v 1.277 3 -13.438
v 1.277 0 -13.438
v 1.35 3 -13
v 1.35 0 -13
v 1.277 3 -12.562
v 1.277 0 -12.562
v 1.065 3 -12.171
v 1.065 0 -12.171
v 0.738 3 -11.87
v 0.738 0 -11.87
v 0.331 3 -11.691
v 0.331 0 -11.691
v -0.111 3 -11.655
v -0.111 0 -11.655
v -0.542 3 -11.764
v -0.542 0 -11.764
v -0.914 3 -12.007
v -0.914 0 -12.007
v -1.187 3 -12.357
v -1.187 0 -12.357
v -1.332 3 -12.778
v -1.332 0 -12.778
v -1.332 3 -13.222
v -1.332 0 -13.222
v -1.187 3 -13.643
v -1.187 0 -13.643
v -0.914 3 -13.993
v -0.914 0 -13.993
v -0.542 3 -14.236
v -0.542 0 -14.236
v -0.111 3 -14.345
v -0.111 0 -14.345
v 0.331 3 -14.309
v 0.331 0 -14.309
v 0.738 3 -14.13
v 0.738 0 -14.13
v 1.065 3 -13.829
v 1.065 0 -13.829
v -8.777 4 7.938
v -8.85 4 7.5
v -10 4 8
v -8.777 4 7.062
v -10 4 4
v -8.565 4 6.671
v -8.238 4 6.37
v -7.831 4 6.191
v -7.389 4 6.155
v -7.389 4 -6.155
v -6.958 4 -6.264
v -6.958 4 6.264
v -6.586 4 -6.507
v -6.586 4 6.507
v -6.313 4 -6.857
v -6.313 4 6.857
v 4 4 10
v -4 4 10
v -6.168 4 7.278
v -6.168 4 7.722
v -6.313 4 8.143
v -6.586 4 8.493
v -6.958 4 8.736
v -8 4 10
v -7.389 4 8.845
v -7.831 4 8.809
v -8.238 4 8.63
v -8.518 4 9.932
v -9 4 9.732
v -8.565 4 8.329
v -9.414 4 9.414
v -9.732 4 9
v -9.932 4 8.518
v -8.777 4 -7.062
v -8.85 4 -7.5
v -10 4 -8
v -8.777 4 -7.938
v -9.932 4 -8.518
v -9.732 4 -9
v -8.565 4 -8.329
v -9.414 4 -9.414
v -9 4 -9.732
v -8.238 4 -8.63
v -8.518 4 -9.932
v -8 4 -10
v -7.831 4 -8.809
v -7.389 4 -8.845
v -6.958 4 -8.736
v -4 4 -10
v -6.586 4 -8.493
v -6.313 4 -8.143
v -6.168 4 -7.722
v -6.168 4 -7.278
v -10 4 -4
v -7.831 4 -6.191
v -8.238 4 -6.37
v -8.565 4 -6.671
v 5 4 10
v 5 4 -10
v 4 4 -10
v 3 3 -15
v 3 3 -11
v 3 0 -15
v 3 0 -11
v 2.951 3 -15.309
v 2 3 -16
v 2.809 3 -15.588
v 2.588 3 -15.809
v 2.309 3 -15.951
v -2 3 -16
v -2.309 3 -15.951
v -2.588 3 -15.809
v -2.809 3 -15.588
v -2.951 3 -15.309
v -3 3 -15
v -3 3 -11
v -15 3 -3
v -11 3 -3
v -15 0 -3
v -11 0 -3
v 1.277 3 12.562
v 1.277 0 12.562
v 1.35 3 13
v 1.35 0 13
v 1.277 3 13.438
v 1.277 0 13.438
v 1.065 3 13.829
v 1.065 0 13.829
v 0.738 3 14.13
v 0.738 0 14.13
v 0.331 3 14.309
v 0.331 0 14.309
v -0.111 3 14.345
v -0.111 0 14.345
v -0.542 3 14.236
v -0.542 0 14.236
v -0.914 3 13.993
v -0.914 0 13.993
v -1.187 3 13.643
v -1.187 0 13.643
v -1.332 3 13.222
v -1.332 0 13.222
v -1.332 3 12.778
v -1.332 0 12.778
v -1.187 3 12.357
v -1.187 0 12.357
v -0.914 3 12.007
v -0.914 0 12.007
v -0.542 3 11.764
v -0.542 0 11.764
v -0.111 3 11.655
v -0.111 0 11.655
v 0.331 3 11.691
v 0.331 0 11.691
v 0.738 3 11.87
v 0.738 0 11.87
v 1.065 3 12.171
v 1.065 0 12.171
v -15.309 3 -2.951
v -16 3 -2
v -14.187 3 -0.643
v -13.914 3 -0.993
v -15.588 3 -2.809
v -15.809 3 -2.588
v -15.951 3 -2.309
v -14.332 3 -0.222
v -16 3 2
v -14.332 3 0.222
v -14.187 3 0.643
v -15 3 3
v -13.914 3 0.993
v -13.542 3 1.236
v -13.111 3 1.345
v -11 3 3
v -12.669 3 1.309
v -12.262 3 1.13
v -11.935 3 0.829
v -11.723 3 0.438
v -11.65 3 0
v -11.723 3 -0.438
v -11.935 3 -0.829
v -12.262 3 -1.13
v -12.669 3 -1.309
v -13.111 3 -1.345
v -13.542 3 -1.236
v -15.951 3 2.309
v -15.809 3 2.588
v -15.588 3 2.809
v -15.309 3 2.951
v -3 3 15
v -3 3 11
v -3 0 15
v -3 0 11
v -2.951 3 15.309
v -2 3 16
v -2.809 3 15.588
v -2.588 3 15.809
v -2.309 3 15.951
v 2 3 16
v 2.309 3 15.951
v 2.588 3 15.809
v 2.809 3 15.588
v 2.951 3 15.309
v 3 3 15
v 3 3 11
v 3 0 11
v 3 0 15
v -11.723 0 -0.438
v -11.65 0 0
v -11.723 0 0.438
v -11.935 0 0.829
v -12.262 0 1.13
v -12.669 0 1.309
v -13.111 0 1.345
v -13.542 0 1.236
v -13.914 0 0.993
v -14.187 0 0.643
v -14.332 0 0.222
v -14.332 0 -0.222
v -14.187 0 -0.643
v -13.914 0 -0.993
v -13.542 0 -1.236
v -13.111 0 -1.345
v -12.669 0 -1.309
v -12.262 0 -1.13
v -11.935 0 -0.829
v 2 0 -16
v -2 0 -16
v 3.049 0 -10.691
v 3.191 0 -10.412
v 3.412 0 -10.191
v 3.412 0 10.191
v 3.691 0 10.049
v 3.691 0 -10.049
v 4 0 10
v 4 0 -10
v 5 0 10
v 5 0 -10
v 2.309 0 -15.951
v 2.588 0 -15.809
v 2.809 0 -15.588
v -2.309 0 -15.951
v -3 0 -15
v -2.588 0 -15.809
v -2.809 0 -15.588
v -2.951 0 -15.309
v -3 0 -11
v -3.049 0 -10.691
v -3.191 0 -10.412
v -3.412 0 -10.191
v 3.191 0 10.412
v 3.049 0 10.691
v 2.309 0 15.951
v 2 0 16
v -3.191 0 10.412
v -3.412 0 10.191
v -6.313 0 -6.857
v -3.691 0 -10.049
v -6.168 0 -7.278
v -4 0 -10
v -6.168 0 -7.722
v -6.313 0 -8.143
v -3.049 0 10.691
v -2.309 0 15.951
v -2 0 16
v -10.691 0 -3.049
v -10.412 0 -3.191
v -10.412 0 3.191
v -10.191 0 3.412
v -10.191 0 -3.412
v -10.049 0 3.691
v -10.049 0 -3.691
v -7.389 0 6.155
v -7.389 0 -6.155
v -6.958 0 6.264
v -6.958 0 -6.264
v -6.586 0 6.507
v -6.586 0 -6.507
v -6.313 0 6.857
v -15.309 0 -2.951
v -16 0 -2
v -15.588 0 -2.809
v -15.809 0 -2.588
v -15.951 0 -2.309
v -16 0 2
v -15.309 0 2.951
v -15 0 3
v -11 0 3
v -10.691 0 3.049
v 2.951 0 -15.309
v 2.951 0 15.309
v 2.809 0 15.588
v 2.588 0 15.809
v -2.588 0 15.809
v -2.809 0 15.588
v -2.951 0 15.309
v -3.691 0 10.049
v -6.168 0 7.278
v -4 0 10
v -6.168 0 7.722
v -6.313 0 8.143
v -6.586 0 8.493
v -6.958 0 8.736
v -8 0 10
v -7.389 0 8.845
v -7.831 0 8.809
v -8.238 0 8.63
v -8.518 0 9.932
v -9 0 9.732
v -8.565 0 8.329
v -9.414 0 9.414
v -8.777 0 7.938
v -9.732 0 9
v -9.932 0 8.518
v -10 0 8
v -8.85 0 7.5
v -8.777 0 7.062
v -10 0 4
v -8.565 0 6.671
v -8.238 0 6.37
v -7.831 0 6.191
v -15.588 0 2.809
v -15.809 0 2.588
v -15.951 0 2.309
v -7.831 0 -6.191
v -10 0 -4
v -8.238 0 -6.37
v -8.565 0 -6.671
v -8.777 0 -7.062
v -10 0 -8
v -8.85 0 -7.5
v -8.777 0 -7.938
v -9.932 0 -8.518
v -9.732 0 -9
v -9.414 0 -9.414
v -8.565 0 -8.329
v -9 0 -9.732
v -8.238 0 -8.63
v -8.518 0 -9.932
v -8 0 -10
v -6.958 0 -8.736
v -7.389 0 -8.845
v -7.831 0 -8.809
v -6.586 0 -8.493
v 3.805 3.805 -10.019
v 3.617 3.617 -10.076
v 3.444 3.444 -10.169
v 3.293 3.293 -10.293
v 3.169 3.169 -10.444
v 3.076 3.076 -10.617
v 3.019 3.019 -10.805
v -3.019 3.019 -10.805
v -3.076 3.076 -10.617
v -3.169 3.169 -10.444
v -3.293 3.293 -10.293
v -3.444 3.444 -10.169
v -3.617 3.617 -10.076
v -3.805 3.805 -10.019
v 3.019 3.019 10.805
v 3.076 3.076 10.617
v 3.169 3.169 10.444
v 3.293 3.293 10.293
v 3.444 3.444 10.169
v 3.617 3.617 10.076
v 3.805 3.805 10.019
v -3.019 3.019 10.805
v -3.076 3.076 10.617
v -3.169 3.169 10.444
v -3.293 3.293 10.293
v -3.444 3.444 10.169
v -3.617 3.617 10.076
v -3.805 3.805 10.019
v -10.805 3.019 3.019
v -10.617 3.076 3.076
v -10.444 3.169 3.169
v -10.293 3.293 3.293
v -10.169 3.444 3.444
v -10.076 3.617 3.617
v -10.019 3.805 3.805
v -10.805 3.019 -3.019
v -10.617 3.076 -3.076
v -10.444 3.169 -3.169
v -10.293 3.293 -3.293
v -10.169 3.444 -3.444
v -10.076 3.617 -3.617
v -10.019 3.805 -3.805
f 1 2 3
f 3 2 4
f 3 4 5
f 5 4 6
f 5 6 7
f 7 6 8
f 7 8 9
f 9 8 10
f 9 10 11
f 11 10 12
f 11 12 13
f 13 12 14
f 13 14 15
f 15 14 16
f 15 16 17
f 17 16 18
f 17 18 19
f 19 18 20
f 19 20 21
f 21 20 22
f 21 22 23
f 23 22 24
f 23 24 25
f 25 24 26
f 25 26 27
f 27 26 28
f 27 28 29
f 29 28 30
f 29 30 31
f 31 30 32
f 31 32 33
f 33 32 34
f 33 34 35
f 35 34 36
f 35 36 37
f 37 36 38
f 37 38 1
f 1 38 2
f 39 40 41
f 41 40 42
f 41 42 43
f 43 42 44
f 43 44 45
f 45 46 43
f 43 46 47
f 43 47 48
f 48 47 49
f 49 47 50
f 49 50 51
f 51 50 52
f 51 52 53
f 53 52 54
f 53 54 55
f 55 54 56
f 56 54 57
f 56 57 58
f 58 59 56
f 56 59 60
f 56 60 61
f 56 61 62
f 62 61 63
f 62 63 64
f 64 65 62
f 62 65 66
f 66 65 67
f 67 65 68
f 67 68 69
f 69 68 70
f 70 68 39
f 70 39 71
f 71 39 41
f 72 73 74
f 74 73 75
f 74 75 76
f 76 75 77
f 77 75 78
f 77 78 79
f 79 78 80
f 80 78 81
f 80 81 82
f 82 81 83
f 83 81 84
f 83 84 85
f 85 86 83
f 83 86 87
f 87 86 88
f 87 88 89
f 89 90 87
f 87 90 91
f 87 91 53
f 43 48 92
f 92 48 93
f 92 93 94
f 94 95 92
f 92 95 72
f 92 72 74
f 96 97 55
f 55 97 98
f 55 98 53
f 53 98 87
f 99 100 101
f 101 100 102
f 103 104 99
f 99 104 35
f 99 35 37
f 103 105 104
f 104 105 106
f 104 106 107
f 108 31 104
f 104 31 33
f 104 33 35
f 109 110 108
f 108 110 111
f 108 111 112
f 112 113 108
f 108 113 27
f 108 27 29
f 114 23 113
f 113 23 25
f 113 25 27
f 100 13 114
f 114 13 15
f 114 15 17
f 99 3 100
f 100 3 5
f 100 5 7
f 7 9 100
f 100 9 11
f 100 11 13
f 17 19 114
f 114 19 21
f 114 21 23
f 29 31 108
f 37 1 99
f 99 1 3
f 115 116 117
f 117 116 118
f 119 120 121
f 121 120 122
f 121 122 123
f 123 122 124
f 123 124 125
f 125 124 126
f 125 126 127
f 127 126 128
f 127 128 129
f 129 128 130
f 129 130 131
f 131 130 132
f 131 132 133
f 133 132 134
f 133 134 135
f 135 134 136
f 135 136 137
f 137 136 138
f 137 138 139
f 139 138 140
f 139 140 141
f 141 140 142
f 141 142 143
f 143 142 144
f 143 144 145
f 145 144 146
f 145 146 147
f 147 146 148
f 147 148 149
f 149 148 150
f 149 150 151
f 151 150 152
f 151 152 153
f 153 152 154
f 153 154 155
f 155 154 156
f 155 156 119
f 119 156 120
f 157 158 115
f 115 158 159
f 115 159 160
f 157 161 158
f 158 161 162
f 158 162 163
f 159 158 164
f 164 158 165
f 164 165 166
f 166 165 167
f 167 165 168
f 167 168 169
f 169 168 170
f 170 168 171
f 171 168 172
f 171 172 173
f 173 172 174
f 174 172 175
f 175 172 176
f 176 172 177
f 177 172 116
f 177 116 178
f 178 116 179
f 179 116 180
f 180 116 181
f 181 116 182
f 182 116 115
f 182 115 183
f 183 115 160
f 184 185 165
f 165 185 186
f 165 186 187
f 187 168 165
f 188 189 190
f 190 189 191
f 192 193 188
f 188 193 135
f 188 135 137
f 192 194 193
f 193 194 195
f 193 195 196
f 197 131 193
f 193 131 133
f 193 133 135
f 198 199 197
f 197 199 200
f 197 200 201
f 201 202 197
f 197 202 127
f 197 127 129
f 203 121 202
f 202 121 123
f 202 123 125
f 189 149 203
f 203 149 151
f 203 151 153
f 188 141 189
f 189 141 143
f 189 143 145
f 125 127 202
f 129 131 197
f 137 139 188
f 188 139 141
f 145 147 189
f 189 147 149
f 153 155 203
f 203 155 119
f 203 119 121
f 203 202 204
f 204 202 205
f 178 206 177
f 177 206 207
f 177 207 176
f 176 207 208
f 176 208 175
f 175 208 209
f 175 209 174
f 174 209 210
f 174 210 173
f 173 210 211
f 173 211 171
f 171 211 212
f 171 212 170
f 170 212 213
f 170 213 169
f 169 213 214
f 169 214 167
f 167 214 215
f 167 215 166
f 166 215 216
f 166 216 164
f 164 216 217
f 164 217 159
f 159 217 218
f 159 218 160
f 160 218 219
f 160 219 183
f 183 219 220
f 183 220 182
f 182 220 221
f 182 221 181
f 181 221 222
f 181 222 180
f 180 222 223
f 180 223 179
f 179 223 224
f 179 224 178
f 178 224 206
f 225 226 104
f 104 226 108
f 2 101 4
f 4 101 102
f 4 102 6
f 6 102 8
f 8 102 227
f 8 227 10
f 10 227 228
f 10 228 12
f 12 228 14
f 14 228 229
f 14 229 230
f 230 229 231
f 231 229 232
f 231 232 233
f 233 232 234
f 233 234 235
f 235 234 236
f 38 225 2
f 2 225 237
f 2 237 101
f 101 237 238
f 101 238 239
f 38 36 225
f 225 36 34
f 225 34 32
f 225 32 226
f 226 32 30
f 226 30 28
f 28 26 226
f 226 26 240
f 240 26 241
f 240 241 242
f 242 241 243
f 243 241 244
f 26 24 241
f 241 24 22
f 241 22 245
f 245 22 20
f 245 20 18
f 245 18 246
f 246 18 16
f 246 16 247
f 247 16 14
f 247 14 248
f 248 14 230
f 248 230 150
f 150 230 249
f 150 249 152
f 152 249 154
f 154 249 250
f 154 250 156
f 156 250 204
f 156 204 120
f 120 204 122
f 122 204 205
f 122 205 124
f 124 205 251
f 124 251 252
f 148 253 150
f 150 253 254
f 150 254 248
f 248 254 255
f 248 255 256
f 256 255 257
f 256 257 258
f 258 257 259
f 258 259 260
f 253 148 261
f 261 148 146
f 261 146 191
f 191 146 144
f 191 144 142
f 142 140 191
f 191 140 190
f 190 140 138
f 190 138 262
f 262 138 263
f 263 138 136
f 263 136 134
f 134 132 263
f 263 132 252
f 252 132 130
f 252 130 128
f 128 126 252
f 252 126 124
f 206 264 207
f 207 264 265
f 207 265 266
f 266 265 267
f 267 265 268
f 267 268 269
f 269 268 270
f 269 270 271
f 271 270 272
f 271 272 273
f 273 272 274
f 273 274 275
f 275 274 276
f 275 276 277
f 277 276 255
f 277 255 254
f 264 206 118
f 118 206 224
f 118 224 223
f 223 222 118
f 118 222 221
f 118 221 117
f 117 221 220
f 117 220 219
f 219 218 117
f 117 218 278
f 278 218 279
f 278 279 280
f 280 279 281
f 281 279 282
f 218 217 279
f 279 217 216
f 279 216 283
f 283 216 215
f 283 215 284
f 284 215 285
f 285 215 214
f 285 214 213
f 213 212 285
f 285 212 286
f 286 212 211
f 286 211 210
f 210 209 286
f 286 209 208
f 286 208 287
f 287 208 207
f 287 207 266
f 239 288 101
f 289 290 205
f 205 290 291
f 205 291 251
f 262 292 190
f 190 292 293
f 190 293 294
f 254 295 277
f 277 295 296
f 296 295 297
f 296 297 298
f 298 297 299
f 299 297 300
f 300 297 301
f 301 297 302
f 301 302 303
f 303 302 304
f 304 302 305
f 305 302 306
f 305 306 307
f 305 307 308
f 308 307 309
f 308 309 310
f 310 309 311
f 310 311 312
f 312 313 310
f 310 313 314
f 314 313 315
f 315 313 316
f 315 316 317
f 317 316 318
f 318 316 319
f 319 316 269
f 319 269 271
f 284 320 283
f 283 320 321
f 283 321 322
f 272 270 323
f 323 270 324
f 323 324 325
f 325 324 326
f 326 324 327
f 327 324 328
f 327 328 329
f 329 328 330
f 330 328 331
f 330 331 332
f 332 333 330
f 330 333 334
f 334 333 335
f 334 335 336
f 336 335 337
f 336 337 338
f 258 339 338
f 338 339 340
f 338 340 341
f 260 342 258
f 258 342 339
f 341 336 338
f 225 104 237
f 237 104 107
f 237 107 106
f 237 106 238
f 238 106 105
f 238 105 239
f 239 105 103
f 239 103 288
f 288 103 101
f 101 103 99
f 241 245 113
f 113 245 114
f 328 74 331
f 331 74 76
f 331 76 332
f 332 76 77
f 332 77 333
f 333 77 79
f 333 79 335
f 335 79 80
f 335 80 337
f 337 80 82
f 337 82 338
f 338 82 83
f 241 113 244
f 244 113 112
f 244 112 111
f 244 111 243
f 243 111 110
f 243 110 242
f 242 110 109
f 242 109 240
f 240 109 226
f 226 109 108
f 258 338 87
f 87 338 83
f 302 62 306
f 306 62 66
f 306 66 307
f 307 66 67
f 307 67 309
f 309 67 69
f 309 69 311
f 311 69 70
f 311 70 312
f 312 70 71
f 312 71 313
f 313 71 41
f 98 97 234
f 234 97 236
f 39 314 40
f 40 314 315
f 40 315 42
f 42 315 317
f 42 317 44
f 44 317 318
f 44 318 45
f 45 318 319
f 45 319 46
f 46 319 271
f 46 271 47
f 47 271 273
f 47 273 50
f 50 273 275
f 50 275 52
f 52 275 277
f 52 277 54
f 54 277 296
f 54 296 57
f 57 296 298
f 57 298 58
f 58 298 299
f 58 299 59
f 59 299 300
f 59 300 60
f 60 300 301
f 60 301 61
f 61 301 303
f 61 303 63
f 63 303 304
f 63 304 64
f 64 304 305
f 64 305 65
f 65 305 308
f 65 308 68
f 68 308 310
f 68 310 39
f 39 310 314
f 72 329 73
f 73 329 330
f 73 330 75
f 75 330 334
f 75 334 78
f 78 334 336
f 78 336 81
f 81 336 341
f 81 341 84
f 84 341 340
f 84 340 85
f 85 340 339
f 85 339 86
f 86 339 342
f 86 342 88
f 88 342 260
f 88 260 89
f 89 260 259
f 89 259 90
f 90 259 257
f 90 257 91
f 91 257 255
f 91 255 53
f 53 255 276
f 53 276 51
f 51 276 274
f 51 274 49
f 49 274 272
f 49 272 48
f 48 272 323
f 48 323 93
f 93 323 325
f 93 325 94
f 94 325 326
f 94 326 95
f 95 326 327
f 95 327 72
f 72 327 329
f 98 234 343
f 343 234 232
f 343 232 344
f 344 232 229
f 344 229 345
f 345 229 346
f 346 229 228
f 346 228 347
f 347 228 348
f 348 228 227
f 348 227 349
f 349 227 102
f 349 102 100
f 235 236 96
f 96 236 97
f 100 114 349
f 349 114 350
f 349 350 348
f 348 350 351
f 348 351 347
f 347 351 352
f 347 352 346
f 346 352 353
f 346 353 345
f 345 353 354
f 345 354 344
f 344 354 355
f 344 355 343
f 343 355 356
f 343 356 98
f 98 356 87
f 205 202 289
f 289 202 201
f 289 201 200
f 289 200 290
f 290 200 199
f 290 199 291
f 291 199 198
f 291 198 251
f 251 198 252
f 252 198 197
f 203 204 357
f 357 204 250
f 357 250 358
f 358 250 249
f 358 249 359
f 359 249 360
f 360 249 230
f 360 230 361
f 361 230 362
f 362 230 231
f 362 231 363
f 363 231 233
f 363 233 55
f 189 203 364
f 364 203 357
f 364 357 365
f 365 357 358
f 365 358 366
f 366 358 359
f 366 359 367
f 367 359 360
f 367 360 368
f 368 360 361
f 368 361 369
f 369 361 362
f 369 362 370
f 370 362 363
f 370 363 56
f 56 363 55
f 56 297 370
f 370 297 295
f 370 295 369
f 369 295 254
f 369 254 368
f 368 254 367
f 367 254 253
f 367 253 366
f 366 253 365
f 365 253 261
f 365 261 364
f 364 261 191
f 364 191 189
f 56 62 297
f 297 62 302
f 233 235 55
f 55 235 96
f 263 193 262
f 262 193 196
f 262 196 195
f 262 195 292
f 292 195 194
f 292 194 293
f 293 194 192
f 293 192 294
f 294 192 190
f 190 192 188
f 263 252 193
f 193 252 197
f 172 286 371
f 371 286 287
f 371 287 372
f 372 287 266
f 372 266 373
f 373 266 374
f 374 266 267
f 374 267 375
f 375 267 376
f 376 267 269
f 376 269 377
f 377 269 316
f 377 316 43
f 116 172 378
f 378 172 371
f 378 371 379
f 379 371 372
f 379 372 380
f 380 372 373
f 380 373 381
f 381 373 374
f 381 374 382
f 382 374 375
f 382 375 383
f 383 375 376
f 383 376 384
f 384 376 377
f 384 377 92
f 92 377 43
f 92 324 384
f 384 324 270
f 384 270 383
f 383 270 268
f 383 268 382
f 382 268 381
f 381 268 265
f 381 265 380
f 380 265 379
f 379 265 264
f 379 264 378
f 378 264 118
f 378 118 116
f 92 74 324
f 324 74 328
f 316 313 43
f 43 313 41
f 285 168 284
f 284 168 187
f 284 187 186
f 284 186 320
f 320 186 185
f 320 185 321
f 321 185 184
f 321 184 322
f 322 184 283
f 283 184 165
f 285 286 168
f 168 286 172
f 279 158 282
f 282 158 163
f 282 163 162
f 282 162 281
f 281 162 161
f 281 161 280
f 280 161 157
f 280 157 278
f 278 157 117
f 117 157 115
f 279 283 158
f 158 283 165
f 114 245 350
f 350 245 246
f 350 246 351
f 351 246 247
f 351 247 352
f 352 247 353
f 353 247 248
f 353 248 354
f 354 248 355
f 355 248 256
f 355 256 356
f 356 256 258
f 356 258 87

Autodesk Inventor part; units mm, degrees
ref_plane "YZ Plane" through (0, 0, 0) normal (1, 0, 0) x (0, 1, 0)
ref_plane "XZ Plane" through (0, 0, 0) normal (0, 1, 0) x (-1, 0, 0)
ref_plane "XY Plane" through (0, 0, 0) normal (0, 0, 1) x (1, 0, 0)
sketch "Эскиз1" plane through (0, 0, 0) normal (0, 1, 0) x (-1, 0, 0)
  line L0 (10, -10) -> (10, 10)
  line L1 (10, 0) -> (-10, 0) construction
  line L2 (0, -10) -> (0, 10) construction
  line L3 (10, -10) -> (9, -10) construction
  line L4 (10, -9) -> (10, -10) construction
  circle A0 centre (7.5, -7.5) radius 1.35
  circle A1 centre (7.5, 7.5) radius 1.35
  line L5 (10, -10) -> (-5, -10)
  line L6 (10, 10) -> (-5, 10)
  line L7 (-5, 10) -> (-5, -10)
  point P0 (0, 0)
  point P1 (0, 0)
  point P2 (0, 0)
  dimension "d16" = 2.7
  dimension "d17" = 2.7
  dimension "d25" = 15
  dimension "d26" = 15
extrude "Выдавливание1" add sketch "Эскиз1" along normal blind 4 contours L5 L7 L6 L0 | A0 | A1
sketch "Эскиз2" plane through (0, 0, 0) normal (0, -1, 0) x (1, 0, 0)
  line L0 (0, -10) -> (2.5, -10) construction
  line L1 (0, -10) -> (-3, -10)
  line L2 (-3, -10) -> (-3, -16)
  line L3 (-3, -16) -> (0, -16)
  line L4 (-3, -16) -> (3, -16)
  line L5 (3, -16) -> (3, -10)
  line L6 (3, -10) -> (-3, -10)
  line L7 (-3, -10) -> (-3, -16)
  line L8 (-10, -10) -> (-10, 10) construction
  line L9 (-10, 0) -> (5, 0) construction
  line L10 (5, 10) -> (5, -10) construction
  line L11 (0, 10) -> (2.5, 10) construction
  line L12 (0, 15) -> (0, 10) construction
  line L13 (0, 10) -> (-3, 10)
  line L14 (-3, 16) -> (0, 16)
  line L15 (-3, 16) -> (3, 16)
  line L16 (3, 16) -> (3, 10)
  line L17 (3, 10) -> (-3, 10)
  line L18 (5, -10) -> (5, 10) construction
  line L19 (-3, 16) -> (-3, 10)
  line L20 (-10, 10) -> (5, 10) construction
  line L21 (-2.5, 0) -> (-10, 10) construction
  line L22 (-10, 0) -> (-16, 0) construction
  line L23 (-16, 0) -> (-16, -3) construction
  line L24 (-16, -3) -> (-10, -3) construction
  line L25 (-10, -3) -> (-10, 0) construction
  line L26 (-10, -3) -> (-16, -3)
  line L27 (-16, -3) -> (-16, 3)
  line L28 (-16, 3) -> (-10, 3)
  line L29 (-10, 3) -> (-10, -3)
  circle A0 centre (-13, 0) radius 1.35
  circle A1 centre (0, 13) radius 1.35
  circle A2 centre (0, -13) radius 1.35
  point P0 (-2.5, -10)
  dimension "d30" = 6
  dimension "d31" = 6
  dimension "d33" = 6
  dimension "d34" = 3
  dimension "d35" = 6
  dimension "d39" = 2.7
  dimension "d40" = 2.7
  dimension "d41" = 2.7
extrude "Выдавливание2" cut sketch "Эскиз1" along normal blind 4 contours A0 | A1
fillet "Сопряжение3" radius 2 2 edges at (-10, 2, 10) (-10, 2, -10)
extrude "Выдавливание4" add sketch "Эскиз2" against normal blind 3
fillet "Сопряжение6" radius 1 15 edges at (3, 1.5, 16) (3, 1.5, 10) (-3, 1.5, 16) (-3, 1.5, 10) (0, 3, 10) (-10, 1.5, 3) (-16, 1.5, 3) (-16, 1.5, -3) (-10, 1.5, -3) (-10, 3, 0) (-3, 1.5, -10) (0, 3, -10) (-3, 1.5, -16) (3, 1.5, -16) (3, 1.5, -10)
properties part number "крепление_RGB"
